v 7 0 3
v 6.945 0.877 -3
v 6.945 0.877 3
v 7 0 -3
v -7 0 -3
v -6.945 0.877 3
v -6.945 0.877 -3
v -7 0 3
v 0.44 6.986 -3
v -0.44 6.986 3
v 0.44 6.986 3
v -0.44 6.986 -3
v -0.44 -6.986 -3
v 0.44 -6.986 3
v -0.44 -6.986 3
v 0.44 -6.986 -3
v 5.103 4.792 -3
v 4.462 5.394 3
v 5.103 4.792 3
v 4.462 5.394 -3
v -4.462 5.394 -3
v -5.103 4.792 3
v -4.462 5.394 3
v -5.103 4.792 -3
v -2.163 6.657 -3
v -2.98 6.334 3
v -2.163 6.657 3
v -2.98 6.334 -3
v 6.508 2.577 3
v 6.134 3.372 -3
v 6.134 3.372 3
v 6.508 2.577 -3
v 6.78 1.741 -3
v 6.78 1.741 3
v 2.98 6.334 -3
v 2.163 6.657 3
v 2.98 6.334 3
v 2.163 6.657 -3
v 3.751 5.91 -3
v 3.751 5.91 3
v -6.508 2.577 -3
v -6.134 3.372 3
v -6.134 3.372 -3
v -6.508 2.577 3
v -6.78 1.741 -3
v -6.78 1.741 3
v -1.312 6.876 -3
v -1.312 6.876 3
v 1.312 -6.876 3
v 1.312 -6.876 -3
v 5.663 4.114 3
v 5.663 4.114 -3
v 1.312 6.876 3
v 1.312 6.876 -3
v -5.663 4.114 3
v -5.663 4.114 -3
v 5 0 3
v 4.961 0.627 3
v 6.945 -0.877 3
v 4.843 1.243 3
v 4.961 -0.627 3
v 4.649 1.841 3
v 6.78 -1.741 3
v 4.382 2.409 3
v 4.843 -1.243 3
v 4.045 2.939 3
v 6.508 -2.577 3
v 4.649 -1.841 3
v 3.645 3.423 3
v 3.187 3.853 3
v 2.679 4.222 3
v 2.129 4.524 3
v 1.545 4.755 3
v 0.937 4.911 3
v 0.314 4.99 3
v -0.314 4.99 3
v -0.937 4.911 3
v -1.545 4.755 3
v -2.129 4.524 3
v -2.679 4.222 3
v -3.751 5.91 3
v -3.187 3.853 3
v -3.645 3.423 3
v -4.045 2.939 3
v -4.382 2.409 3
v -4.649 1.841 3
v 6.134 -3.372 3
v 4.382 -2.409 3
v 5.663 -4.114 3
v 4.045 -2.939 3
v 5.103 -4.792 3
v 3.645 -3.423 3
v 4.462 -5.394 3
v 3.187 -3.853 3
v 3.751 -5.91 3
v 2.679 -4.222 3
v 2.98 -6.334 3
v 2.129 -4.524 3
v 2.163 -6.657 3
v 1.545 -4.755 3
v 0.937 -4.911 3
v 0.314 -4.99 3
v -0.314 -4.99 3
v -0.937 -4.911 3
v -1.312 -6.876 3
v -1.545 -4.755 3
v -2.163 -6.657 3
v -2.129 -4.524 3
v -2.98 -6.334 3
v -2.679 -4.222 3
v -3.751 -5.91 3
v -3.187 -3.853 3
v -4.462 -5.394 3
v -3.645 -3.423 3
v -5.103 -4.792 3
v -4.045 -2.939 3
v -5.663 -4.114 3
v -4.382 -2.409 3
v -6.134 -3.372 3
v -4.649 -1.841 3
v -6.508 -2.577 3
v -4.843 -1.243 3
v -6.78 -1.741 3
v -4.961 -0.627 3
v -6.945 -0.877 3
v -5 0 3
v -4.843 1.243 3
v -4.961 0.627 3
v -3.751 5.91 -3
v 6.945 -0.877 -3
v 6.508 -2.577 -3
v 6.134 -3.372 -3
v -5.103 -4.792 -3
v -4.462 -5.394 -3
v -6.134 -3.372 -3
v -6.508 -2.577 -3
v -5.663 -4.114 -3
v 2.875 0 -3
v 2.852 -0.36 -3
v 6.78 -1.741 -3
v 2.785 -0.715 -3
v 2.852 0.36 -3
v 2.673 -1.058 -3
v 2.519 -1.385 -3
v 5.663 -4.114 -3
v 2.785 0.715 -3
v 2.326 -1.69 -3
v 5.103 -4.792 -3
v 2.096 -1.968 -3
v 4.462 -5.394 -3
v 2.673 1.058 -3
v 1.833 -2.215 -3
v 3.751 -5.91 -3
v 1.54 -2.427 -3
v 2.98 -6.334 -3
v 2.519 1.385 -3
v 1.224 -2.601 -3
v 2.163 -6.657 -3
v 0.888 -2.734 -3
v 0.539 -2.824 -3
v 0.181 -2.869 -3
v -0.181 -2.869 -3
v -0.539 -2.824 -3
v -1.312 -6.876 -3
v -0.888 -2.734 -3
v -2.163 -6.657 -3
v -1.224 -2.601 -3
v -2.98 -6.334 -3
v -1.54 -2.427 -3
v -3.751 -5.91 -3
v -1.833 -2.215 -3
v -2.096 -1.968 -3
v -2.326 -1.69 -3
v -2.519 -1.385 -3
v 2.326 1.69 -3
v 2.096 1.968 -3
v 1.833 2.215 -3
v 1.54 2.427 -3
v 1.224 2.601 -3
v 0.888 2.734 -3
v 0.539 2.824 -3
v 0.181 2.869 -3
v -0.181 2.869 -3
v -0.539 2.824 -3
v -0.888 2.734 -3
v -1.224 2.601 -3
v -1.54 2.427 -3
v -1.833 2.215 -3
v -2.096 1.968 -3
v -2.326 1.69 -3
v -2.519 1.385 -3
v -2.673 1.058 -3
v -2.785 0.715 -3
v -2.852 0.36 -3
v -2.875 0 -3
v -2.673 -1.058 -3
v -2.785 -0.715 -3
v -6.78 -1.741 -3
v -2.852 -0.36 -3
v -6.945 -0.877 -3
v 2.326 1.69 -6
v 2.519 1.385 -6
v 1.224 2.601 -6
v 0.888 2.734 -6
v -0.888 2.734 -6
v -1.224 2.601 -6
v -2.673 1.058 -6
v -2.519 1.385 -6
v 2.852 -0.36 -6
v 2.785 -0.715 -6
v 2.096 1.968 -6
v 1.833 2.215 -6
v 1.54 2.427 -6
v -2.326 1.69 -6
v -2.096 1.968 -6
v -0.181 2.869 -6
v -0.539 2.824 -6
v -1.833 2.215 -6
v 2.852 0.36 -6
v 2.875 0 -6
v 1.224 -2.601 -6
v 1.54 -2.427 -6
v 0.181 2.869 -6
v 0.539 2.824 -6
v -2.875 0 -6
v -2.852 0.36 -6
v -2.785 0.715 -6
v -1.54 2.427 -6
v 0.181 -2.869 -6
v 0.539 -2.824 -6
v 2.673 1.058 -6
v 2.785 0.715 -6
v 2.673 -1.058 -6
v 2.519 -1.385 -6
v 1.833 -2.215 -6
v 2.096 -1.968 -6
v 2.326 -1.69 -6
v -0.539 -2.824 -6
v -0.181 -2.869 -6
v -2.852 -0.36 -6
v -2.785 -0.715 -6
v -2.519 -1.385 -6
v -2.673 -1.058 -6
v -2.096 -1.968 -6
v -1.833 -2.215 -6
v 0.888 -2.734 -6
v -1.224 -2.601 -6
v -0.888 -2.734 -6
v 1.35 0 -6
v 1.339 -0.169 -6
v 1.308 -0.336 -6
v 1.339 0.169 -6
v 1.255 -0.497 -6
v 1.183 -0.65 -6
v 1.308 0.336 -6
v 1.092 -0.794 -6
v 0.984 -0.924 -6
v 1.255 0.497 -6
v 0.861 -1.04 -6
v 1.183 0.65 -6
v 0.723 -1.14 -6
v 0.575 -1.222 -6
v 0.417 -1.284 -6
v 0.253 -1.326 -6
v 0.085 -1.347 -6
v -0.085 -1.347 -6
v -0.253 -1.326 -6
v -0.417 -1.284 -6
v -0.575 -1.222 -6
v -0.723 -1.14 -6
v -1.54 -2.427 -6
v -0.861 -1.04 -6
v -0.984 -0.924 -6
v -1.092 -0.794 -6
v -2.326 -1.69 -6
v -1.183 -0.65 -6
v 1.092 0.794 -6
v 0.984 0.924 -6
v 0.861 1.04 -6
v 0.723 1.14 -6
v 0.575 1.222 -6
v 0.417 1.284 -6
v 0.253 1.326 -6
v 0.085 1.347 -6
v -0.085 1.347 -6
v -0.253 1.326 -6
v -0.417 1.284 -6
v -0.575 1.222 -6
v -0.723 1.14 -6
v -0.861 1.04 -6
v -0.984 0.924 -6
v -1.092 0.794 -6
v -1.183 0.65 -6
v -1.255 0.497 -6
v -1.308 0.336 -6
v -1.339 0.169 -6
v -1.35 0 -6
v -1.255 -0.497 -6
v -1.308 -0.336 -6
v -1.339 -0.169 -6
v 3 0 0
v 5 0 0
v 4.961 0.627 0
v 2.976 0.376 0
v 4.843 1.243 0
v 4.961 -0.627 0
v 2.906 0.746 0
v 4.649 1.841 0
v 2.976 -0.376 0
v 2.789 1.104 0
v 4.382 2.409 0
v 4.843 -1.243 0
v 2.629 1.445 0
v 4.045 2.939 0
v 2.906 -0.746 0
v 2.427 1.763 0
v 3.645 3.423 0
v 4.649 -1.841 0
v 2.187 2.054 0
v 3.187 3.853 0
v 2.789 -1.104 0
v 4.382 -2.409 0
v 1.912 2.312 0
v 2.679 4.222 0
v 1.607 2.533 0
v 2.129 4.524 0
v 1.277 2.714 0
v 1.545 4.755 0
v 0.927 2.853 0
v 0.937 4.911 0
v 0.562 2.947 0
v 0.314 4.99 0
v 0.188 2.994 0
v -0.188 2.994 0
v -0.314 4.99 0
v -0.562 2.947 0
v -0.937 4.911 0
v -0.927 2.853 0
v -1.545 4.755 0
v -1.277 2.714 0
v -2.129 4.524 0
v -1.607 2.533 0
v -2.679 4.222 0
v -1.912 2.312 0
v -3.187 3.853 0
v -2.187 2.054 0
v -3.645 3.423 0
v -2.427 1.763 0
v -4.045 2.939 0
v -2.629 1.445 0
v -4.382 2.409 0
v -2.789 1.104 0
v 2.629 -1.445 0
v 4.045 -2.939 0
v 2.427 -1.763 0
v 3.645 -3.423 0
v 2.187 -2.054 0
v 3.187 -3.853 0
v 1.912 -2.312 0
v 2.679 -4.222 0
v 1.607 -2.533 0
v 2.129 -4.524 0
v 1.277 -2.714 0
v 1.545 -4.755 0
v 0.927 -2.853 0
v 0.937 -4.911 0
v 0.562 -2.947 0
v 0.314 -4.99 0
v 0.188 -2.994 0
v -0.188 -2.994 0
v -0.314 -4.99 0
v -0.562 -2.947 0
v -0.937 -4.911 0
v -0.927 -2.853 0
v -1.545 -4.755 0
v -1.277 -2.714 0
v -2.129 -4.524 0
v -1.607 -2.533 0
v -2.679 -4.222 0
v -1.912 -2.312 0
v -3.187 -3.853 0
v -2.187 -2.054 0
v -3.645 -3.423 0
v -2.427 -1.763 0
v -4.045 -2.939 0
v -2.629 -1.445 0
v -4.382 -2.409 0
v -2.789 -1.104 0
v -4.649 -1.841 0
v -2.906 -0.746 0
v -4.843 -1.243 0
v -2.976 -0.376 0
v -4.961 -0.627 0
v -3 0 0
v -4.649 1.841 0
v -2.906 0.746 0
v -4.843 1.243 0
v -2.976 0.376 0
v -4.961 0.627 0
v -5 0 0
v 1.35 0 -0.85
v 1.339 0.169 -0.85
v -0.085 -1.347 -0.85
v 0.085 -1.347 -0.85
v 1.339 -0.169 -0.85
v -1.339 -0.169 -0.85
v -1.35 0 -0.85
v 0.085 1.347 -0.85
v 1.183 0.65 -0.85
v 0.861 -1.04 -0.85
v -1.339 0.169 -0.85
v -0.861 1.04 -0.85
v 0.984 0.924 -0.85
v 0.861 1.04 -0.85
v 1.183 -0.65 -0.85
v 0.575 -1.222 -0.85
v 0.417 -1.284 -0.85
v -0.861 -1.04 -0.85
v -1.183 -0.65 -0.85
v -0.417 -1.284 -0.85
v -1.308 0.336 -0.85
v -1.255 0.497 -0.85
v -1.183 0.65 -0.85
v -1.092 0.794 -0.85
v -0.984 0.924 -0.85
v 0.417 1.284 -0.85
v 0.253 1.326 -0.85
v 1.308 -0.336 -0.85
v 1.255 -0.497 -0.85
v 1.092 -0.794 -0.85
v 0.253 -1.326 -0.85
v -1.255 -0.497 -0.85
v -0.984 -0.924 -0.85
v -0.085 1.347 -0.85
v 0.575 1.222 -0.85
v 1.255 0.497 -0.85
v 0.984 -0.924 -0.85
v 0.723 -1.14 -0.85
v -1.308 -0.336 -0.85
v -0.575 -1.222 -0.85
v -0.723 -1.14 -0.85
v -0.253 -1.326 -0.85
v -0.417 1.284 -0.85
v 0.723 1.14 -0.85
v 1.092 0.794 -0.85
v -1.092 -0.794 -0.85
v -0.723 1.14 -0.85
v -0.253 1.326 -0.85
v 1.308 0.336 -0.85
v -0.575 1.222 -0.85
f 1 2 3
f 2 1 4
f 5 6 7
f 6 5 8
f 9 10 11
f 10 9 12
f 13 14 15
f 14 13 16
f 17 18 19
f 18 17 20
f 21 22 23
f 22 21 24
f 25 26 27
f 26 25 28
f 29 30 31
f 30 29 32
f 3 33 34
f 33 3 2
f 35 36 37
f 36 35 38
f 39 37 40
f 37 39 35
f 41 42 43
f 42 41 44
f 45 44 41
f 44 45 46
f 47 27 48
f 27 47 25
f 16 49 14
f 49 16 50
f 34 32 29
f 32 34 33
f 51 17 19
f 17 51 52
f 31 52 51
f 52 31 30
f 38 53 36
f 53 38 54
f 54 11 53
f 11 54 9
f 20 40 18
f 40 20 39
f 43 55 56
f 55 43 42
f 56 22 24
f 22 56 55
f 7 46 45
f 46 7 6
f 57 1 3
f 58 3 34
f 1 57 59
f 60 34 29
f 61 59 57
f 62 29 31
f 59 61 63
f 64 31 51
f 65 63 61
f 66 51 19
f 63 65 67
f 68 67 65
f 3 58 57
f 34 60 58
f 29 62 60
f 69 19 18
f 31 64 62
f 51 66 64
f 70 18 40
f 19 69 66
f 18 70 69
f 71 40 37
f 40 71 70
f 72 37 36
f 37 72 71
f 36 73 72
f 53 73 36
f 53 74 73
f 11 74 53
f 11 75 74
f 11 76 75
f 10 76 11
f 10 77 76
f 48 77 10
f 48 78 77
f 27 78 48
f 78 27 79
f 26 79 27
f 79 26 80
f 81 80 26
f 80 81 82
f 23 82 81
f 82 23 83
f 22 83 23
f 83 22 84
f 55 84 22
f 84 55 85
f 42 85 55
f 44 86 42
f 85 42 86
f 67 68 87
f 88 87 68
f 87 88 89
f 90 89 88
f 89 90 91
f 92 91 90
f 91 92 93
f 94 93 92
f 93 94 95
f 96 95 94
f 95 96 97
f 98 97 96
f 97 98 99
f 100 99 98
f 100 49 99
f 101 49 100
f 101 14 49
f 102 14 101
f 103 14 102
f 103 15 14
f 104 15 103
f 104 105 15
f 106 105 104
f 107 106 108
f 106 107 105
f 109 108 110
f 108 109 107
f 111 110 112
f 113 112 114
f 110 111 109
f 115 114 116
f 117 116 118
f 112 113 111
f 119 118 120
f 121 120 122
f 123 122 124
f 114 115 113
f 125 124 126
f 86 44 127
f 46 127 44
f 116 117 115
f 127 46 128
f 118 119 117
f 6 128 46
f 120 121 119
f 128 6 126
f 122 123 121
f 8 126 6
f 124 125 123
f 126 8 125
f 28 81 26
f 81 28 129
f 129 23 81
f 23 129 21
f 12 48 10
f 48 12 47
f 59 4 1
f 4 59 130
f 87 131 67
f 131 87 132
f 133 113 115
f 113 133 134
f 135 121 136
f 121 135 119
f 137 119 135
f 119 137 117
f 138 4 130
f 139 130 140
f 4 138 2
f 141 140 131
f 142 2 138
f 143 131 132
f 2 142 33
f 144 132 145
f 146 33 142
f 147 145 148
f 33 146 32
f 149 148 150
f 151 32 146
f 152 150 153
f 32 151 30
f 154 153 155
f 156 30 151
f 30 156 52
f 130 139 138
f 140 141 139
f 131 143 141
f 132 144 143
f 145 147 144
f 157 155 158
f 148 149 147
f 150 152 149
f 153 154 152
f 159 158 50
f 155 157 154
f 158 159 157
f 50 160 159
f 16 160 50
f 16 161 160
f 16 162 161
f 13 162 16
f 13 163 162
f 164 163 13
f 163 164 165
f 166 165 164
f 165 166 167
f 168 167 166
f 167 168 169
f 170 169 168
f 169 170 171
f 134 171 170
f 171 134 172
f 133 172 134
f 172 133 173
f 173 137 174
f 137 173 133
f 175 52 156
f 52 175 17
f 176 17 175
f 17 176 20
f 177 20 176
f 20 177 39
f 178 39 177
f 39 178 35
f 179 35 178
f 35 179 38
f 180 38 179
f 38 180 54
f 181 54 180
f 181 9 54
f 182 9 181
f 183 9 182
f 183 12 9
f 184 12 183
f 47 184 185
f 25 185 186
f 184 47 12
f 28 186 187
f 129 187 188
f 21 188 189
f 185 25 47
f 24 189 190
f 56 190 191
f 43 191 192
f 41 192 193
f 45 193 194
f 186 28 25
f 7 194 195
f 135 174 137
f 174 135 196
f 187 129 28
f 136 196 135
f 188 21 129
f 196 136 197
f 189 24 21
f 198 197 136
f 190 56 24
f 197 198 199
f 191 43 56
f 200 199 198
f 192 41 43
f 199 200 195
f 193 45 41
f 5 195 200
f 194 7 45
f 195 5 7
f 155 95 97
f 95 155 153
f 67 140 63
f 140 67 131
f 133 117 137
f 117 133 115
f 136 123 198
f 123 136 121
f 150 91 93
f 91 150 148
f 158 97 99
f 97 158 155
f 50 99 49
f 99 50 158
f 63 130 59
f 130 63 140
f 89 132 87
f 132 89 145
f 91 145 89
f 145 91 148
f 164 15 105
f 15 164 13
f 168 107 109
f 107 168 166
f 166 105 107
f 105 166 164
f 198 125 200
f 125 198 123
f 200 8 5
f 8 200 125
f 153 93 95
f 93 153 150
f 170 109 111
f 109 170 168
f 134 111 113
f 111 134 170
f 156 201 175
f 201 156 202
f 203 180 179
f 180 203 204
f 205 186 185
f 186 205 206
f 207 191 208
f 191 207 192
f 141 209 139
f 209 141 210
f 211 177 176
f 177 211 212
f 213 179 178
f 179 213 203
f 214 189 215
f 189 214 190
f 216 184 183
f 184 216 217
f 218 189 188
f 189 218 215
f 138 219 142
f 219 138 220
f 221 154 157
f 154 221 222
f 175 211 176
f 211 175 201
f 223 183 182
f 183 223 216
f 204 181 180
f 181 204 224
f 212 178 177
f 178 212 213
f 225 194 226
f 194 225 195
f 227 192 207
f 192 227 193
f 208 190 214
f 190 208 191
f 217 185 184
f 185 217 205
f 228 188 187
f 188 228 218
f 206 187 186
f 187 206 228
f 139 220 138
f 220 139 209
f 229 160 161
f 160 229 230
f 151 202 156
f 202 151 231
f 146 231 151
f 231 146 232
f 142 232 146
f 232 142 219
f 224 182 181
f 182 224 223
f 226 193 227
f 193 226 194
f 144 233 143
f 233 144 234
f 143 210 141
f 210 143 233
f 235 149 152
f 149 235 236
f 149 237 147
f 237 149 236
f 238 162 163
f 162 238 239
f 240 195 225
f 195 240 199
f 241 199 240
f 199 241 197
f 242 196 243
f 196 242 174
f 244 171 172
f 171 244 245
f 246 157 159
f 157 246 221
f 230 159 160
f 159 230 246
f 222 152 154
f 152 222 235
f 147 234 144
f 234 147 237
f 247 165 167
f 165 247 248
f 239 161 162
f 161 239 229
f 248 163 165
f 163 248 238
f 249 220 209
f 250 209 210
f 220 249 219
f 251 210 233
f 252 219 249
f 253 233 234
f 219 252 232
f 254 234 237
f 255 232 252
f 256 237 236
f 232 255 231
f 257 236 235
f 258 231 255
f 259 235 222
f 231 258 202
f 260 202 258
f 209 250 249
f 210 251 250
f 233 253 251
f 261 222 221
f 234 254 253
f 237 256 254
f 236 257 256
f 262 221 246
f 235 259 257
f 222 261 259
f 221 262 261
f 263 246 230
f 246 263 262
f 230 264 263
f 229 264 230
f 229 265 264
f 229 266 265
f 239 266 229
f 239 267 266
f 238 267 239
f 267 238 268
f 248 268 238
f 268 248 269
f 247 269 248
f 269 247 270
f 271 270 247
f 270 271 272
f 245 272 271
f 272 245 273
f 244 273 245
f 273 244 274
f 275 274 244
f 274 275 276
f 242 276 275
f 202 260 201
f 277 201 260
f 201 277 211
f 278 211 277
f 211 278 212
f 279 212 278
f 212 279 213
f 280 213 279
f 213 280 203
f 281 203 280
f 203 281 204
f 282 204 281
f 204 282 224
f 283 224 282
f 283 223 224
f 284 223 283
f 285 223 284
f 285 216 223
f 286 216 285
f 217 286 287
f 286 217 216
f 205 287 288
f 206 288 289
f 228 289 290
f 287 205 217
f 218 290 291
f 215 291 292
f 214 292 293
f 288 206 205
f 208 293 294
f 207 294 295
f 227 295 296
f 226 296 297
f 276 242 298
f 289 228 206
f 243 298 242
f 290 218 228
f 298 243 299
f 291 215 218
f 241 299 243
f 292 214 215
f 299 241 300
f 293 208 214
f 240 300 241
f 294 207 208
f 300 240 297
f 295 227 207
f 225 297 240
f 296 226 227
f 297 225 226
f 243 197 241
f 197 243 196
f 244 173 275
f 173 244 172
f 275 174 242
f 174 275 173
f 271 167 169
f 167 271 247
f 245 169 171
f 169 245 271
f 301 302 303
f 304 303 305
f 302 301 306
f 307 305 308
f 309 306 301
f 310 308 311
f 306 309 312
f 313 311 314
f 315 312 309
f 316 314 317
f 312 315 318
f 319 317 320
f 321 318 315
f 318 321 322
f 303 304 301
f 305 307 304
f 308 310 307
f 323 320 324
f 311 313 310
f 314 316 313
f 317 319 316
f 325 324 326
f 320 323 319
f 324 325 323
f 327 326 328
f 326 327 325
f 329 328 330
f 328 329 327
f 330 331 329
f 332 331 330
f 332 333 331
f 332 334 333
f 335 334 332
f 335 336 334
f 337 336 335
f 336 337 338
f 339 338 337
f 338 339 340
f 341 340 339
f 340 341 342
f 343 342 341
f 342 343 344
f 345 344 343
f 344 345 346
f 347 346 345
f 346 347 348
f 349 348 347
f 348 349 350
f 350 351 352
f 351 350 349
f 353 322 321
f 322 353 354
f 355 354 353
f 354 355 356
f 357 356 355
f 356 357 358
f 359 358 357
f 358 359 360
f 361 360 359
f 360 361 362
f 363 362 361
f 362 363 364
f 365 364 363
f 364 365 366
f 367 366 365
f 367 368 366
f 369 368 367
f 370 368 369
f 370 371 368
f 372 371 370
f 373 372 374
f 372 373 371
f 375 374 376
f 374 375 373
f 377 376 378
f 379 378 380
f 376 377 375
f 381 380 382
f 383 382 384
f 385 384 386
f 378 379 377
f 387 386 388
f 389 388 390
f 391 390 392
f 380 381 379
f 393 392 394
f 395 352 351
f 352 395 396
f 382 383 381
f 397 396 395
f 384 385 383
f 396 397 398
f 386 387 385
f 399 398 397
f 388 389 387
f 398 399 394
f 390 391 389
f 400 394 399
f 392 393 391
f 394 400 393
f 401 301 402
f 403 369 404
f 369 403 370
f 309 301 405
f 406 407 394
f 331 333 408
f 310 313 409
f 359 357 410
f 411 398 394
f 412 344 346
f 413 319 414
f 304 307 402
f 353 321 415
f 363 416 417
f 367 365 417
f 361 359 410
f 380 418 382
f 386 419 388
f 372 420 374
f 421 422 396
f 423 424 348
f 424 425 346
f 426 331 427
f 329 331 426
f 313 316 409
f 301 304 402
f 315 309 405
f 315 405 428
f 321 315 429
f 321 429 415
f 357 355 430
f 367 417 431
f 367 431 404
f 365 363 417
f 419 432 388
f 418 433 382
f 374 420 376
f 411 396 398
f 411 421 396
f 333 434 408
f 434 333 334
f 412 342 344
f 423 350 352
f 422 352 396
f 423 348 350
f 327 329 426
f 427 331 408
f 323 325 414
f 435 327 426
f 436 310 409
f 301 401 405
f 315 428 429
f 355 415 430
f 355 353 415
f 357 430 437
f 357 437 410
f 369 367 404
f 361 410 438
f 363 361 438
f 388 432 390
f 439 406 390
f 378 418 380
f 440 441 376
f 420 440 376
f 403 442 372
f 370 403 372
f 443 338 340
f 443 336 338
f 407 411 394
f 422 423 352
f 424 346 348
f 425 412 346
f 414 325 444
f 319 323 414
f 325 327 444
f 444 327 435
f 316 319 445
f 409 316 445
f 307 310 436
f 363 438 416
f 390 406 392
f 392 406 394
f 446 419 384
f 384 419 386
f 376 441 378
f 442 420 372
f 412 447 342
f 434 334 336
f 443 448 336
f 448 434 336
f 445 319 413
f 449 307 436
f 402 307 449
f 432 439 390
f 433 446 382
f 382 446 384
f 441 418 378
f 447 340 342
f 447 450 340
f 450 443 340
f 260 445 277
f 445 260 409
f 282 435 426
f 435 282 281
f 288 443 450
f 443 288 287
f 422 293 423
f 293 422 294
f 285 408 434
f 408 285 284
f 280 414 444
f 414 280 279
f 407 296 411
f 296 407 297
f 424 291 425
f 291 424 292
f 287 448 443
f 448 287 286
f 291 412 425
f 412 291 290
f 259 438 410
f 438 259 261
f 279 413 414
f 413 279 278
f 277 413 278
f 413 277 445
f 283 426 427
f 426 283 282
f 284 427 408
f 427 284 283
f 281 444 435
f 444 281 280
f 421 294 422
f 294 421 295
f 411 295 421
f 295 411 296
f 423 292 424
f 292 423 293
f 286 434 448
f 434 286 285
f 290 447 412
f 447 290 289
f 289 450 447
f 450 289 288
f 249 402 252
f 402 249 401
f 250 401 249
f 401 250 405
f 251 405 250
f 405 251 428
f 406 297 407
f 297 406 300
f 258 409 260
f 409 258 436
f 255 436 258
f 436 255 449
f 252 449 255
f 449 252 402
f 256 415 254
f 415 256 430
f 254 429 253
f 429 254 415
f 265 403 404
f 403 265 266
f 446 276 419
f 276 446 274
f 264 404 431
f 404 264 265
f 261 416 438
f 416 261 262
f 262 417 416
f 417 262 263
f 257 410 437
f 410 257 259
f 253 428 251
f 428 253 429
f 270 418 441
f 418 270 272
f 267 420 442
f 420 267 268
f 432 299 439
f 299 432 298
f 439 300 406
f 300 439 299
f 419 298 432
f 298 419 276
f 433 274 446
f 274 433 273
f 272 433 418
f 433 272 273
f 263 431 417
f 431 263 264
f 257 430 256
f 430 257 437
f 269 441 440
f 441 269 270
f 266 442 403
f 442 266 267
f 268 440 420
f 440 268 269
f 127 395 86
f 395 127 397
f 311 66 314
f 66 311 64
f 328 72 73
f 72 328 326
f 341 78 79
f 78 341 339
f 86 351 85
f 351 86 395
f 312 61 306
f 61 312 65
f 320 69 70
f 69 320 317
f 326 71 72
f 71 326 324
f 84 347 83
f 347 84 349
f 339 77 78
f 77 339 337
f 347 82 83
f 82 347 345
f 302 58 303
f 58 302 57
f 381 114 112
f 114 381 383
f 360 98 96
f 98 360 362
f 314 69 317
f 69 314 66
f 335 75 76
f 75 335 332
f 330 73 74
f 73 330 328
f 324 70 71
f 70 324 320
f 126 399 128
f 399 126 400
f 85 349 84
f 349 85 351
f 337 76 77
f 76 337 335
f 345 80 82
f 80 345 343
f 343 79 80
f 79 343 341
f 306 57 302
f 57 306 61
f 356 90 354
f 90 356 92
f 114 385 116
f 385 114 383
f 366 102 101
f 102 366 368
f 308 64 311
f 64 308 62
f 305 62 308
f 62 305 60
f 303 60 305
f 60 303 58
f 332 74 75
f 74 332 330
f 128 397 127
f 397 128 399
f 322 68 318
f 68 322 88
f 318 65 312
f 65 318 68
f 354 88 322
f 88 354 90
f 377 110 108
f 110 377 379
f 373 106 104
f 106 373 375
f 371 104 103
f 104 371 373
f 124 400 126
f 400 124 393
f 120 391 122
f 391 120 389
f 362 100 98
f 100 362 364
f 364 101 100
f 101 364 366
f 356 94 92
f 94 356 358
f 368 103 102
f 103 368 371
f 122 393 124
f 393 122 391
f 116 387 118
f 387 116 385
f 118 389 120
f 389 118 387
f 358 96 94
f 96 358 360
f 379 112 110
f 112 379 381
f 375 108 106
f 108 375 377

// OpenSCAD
$fn = 50;

difference() {
	union() {
		translate(v = [0, 0, -3.0]) {
			cylinder(h = 6, r = 7.0);
		}
		#translate(v = [0, 0, -6.0]) {
			cylinder(h = 6, r = 2.875);
		}
	}
	union() {
		translate(v = [0, 0, 0]) {
			rotate(a = [0, 0, 0]) {
				difference() {
					union() {
						translate(v = [0, 0, -6.0]) {
							cylinder(h = 6, r = 1.0);
						}
						translate(v = [0, 0, -0.85]) {
							cylinder(h = 0.85, r1 = 1.35, r2 = 3.0);
						}
						translate(v = [0, 0, -6.0]) {
							cylinder(h = 6, r = 1.35);
						}
						translate(v = [0, 0, -6.0]) {
							cylinder(h = 6, r = 1.0);
						}
					}
					union();
				}
			}
		}
		#cylinder(h = 3, r = 5.0);
	}
}
